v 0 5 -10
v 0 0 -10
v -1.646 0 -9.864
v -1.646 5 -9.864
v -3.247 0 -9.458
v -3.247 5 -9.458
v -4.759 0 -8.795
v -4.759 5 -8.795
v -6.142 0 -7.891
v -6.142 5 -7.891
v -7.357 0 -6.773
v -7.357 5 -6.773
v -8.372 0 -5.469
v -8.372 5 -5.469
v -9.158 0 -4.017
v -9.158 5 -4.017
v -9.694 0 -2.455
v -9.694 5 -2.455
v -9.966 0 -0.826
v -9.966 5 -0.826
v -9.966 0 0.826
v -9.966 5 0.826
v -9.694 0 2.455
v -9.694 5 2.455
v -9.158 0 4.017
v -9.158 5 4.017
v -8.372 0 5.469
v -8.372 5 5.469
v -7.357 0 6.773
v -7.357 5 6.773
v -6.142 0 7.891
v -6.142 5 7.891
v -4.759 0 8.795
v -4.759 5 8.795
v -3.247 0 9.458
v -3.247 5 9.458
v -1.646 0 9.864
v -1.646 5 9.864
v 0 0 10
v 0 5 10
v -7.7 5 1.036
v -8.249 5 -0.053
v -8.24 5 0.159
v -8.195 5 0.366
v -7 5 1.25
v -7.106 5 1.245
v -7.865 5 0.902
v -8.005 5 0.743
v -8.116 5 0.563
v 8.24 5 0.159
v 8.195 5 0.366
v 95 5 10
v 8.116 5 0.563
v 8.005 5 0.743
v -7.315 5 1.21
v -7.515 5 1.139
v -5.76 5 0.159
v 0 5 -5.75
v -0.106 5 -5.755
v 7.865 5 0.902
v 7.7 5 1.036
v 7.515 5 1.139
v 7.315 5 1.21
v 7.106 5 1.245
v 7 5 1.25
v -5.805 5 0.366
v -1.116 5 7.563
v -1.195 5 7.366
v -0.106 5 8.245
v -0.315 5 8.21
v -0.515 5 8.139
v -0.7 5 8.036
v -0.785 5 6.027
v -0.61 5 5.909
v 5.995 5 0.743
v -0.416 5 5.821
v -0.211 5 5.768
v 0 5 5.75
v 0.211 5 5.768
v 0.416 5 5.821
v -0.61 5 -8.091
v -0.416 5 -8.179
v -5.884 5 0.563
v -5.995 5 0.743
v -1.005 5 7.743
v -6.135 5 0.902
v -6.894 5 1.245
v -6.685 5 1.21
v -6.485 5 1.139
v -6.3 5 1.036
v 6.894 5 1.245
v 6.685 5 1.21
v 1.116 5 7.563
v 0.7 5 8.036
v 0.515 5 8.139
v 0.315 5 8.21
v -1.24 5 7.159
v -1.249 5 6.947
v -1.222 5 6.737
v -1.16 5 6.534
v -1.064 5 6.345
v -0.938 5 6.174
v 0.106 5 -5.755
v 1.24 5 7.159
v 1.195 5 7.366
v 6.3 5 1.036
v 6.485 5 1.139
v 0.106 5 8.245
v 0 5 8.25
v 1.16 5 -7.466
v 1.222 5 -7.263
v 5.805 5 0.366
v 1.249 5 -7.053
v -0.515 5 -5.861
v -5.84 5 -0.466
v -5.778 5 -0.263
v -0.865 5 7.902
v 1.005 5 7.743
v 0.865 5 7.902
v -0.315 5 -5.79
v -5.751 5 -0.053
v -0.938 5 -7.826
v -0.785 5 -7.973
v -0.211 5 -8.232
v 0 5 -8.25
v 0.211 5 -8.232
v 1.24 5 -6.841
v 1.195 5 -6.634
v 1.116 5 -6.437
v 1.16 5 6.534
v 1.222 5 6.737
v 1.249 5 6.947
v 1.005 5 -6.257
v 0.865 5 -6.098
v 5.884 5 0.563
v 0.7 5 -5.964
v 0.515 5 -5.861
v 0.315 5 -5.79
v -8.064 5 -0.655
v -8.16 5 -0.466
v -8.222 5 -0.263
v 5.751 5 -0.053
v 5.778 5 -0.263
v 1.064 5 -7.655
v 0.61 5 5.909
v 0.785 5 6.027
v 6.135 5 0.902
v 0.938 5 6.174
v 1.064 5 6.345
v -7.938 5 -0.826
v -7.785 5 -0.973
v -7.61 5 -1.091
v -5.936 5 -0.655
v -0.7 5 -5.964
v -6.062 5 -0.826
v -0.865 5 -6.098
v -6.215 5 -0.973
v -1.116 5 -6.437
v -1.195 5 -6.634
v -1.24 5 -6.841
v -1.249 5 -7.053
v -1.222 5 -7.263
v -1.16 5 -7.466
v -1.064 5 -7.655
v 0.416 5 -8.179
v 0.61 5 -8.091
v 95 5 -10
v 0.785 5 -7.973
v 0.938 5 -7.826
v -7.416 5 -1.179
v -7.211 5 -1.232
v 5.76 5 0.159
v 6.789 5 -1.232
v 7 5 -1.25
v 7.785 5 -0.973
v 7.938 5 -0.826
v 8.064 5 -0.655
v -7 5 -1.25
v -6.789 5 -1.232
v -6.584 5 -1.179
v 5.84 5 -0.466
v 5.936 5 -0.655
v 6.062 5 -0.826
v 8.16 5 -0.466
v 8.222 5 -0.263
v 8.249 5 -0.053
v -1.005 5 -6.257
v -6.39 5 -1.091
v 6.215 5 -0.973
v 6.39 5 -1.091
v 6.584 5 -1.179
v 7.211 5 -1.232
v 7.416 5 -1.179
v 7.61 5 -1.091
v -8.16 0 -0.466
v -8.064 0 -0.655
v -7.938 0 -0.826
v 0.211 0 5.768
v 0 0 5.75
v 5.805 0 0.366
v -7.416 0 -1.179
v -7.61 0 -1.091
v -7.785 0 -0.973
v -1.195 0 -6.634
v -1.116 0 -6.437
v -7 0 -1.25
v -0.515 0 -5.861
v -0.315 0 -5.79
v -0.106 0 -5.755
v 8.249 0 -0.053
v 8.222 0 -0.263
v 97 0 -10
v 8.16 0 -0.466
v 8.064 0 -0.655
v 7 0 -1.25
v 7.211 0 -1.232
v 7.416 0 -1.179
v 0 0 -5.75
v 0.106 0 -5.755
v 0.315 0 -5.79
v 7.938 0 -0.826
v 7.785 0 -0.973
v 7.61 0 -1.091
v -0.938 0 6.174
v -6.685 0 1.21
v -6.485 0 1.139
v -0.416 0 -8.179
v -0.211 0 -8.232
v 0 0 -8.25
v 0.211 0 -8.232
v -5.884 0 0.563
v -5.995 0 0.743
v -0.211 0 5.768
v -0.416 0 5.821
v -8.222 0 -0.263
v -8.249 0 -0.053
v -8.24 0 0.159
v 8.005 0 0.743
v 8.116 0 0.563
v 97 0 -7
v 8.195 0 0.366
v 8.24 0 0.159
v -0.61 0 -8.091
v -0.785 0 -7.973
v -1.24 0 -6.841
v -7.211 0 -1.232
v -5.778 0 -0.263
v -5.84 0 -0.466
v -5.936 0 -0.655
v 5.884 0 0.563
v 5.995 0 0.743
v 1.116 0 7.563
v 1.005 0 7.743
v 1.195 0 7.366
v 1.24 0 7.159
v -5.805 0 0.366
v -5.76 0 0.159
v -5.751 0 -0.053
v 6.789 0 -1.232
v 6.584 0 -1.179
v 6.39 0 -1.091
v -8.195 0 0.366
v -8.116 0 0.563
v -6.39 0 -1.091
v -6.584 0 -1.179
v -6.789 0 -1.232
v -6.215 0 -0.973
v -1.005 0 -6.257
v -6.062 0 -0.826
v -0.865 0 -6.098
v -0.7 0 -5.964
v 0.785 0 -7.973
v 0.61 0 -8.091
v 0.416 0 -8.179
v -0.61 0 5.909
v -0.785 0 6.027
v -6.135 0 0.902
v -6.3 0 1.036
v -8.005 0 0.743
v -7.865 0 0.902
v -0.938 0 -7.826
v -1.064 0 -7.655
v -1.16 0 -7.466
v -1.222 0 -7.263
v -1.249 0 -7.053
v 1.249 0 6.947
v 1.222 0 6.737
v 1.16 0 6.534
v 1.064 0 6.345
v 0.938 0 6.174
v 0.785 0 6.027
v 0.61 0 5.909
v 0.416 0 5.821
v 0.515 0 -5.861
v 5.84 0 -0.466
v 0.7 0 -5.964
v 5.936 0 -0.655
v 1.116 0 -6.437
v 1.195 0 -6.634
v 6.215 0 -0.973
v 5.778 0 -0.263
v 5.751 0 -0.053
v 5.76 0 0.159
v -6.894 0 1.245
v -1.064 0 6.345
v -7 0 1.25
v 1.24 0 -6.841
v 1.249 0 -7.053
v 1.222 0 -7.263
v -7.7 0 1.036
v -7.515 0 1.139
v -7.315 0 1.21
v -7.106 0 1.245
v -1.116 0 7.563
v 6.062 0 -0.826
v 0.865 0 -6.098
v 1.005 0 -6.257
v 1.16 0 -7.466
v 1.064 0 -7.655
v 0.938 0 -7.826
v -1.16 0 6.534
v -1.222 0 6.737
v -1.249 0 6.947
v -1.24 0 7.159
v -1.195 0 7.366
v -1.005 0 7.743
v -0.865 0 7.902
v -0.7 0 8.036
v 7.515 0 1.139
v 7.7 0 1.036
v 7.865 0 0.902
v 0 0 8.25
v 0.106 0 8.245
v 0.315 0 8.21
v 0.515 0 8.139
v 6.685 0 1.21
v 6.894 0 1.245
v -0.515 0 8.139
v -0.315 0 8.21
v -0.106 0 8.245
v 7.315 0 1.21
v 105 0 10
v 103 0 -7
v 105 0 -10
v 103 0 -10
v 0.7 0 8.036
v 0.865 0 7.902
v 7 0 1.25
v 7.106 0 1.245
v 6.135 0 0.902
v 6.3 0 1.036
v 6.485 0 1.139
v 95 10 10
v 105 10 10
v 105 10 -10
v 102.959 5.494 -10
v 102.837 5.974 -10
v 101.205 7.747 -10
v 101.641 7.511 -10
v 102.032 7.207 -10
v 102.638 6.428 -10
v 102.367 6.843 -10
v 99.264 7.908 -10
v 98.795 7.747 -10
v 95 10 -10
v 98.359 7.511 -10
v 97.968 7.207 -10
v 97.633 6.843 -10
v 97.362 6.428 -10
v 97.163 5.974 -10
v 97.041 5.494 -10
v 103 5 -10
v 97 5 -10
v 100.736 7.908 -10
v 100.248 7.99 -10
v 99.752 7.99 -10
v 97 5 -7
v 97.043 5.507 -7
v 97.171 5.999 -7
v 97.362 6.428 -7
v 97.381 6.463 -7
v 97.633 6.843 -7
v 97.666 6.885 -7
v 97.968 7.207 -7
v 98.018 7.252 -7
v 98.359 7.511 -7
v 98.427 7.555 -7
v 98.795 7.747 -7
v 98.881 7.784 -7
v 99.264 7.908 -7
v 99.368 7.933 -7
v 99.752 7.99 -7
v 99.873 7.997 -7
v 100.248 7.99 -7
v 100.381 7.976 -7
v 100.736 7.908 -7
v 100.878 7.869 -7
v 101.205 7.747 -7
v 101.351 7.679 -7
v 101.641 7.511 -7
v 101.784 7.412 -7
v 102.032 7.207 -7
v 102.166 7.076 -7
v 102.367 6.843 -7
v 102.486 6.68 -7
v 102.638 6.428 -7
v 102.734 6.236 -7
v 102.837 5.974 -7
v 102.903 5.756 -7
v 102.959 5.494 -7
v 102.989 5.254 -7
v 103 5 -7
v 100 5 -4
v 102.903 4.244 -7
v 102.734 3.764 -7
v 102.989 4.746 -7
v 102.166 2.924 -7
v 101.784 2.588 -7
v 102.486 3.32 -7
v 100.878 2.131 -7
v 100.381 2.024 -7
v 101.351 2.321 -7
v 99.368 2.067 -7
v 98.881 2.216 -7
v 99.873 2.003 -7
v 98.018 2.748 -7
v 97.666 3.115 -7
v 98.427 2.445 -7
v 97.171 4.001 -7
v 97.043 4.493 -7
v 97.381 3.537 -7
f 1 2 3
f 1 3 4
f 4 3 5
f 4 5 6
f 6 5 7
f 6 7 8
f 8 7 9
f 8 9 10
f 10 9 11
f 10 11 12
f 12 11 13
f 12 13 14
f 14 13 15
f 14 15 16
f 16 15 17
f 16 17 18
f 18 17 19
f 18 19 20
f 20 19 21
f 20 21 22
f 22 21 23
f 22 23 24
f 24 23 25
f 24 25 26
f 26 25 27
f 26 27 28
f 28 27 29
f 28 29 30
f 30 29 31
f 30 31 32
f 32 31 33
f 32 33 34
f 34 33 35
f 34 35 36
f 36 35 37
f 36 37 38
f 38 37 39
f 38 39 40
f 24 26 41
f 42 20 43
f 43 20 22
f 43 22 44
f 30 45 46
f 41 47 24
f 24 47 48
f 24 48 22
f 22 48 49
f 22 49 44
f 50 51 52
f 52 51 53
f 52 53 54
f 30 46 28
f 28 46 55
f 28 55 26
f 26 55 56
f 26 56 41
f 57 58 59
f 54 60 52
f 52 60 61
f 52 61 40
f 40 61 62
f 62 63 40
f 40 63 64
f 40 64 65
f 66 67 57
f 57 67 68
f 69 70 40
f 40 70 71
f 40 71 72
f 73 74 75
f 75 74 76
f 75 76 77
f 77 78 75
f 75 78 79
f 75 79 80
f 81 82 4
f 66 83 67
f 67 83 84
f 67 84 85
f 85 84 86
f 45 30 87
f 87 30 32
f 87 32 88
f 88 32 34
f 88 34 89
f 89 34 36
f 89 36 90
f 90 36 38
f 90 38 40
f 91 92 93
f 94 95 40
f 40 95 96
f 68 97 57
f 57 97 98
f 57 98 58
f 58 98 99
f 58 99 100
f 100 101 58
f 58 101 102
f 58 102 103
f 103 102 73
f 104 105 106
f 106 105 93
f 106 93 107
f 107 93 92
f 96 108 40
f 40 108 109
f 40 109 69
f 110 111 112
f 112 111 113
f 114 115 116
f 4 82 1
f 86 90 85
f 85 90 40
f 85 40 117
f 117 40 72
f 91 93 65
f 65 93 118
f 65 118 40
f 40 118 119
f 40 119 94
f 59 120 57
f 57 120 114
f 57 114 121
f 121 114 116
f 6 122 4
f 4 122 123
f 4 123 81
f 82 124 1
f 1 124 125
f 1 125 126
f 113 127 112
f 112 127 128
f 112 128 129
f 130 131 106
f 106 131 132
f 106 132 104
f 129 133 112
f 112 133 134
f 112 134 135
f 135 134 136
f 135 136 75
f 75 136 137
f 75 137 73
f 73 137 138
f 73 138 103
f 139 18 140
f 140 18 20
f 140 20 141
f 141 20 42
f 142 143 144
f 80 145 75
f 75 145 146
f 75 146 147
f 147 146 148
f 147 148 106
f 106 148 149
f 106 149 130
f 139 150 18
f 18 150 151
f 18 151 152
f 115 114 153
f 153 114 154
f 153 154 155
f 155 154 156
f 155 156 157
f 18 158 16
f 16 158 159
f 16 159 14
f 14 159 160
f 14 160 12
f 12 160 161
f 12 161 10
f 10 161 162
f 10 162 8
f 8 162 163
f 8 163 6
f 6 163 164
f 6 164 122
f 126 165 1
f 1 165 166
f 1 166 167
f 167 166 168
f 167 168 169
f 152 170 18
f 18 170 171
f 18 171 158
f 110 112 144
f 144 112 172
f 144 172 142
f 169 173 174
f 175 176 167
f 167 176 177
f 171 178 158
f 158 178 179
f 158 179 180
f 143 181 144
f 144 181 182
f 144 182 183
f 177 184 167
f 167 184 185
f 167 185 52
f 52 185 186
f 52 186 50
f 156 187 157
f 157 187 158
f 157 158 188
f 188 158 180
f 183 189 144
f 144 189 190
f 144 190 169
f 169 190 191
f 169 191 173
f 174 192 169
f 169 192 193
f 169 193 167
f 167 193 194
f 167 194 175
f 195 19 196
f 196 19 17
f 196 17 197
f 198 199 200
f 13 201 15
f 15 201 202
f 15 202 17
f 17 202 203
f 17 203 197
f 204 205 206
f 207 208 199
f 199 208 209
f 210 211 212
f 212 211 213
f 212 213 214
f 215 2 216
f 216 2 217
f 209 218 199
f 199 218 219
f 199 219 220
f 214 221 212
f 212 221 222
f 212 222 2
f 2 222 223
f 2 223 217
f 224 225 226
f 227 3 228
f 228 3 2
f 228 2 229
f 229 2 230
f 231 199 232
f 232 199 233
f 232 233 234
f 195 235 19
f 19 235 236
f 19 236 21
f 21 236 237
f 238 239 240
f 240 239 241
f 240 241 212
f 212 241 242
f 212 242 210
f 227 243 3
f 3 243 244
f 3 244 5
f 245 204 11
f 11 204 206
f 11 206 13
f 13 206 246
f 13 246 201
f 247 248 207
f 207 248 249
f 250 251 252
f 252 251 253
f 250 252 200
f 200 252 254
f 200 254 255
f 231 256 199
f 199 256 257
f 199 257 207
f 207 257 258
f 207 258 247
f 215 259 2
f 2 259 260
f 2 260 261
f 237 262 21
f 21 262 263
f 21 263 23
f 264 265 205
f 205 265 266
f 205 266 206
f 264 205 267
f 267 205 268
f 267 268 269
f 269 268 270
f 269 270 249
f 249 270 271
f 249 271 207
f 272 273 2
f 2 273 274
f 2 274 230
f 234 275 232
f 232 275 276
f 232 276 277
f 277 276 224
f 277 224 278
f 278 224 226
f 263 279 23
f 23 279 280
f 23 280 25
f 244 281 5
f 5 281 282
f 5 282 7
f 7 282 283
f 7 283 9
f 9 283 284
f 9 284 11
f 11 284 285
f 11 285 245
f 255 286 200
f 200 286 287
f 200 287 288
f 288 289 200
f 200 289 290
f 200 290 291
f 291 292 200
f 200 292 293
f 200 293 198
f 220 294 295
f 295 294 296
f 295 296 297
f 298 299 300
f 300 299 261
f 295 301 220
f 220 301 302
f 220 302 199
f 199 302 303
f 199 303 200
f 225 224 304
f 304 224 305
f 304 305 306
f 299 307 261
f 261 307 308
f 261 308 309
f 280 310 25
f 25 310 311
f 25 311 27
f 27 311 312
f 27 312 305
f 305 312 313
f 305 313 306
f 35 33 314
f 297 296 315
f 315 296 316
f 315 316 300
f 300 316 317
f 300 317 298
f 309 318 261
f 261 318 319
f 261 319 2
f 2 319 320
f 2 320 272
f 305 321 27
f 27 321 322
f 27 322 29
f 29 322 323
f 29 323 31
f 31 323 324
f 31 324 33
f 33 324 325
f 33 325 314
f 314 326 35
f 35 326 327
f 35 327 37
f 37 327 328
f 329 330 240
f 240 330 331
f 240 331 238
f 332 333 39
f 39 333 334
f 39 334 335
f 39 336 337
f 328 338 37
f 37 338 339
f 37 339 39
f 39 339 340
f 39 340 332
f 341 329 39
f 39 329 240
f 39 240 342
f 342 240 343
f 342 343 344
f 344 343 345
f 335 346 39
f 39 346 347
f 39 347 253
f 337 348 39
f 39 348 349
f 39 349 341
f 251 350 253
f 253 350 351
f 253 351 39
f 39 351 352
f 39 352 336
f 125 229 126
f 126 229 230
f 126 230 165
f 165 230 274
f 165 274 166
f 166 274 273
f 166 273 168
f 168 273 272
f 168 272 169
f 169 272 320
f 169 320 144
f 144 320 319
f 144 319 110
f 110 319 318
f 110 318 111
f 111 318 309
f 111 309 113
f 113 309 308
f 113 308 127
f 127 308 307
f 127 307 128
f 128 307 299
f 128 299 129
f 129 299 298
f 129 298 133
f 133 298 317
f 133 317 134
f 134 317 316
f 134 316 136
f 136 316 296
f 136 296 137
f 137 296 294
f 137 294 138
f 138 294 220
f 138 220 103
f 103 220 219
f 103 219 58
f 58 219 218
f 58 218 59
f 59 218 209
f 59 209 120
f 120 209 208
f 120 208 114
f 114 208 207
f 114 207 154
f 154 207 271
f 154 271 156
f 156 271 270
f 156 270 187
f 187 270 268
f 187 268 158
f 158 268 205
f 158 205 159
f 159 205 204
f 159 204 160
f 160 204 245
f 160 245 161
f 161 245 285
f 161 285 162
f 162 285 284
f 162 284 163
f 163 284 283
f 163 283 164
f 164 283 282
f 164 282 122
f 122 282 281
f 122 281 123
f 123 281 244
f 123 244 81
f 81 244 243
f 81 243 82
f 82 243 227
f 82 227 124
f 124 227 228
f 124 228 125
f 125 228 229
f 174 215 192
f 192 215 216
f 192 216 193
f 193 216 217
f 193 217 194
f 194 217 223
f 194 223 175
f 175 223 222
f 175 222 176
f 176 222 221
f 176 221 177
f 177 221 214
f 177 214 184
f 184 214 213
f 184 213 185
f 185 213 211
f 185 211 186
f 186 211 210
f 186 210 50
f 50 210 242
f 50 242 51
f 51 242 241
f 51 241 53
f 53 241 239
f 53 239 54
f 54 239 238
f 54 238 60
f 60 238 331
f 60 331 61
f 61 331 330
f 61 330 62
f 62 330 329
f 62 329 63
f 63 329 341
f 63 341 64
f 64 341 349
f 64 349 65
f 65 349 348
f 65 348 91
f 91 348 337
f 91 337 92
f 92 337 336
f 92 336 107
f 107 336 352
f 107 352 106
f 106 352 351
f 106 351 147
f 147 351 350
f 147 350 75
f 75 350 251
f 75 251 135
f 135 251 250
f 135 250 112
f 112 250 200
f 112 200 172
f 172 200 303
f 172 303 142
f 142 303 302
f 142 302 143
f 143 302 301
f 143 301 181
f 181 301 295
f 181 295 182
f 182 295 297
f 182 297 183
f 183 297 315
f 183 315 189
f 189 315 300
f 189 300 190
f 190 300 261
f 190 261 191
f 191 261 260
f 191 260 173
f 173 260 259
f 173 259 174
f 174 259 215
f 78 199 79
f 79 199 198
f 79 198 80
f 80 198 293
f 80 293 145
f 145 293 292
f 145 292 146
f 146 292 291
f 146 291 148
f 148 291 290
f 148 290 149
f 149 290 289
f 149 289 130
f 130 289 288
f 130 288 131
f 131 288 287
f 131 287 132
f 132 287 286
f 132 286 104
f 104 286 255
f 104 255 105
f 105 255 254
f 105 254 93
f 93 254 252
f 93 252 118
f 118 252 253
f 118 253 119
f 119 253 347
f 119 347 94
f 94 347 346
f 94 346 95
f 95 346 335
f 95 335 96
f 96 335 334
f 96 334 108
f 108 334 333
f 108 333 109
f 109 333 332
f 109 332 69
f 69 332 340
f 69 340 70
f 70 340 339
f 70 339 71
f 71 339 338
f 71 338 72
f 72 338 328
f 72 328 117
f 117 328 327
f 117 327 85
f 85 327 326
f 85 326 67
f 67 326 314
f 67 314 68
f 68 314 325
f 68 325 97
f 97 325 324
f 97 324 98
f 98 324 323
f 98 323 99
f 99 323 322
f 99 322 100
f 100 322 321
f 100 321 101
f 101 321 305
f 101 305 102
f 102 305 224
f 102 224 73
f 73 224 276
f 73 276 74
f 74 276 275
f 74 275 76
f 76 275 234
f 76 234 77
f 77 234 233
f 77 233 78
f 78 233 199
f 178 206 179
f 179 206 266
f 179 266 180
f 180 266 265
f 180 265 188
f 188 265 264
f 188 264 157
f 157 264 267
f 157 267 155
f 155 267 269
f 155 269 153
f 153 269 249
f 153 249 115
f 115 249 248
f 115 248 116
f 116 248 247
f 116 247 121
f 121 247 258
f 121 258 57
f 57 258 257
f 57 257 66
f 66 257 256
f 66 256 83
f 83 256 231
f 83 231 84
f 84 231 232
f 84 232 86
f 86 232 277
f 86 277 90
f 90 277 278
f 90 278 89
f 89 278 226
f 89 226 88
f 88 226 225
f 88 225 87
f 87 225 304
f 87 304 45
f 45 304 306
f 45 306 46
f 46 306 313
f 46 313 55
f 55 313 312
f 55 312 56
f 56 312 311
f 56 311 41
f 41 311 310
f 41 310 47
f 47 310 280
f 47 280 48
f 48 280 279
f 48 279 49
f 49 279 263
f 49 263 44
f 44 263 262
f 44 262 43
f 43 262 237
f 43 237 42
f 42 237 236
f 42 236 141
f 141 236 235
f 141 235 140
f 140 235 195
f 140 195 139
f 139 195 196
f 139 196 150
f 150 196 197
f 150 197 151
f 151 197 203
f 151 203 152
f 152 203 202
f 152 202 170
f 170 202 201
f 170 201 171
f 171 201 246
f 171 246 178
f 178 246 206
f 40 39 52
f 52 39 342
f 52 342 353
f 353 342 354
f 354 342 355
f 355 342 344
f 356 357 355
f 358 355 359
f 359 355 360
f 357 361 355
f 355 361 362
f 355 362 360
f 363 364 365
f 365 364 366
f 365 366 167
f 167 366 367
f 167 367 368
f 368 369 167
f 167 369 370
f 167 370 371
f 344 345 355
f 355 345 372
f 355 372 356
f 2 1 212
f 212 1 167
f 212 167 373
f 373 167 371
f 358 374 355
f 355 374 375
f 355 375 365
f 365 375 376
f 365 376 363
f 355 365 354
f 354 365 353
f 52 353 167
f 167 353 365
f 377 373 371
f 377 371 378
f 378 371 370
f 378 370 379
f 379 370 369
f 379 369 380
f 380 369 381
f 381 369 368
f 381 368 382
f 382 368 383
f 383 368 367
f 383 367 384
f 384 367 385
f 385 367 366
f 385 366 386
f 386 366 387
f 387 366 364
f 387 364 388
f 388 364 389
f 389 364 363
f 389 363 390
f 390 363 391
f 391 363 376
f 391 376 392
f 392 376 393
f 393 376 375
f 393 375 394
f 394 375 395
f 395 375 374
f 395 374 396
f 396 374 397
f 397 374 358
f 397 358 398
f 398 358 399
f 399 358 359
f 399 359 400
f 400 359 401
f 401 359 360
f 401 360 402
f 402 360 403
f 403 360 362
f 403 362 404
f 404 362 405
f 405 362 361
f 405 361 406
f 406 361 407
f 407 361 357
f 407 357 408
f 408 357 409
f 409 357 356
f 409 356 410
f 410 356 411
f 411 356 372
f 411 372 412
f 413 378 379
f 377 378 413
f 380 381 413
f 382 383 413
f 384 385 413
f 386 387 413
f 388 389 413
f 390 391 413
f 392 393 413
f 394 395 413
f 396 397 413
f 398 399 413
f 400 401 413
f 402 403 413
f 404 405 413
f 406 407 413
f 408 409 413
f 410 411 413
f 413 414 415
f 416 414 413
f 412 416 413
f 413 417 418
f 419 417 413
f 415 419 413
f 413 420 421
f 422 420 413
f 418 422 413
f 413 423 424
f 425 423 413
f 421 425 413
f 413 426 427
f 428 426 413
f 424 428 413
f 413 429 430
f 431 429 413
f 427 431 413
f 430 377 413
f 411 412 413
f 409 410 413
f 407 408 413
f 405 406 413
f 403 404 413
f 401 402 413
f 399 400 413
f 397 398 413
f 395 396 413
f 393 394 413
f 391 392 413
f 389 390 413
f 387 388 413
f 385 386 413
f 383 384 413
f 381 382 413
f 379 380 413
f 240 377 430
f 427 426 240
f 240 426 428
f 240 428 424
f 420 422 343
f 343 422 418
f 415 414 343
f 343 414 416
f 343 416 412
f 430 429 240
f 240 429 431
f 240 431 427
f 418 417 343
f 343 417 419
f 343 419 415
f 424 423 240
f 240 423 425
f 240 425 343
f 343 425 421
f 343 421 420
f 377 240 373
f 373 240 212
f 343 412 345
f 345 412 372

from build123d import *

# Parameters (mm, degrees)
SKETCH1_R           = 10
SKETCH1_R_2         = 1.25
BOSS_EXTRUDE1_DEPTH = 5
BOSS_EXTRUDE2_DEPTH = 5
SKETCH3_W           = 10
SKETCH3_H           = 10
BOSS_EXTRUDE3_DEPTH = 20
SKETCH4_R           = 3
CUT_EXTRUDE1_DEPTH  = 6
CHAMFER1_SIZE       = 3
SKETCH5_W           = 6
SKETCH5_H           = 5
CUT_EXTRUDE2_DEPTH  = 3


with BuildPart() as part:
    # Sketch1 → Boss-Extrude1 (new body)
    with BuildSketch(Plane(origin=(0, 0, 0), x_dir=(1, 0, 0), z_dir=(0, 1, 0))):
        with Locations(Location((0, 0, 0), (0, 0, 270))):
            Circle(SKETCH1_R)
        with Locations(Location((0, 7, 0), (0, 0, 270))):
            Circle(SKETCH1_R_2, mode=Mode.SUBTRACT)
        with Locations(Location((7, 0, 0), (0, 0, 270))):
            Circle(SKETCH1_R_2, mode=Mode.SUBTRACT)
        with Locations(Location((0, -7, 0), (0, 0, 270))):
            Circle(SKETCH1_R_2, mode=Mode.SUBTRACT)
        with Locations(Location((-7, 0, 0), (0, 0, 270))):
            Circle(SKETCH1_R_2, mode=Mode.SUBTRACT)
    extrude(amount=BOSS_EXTRUDE1_DEPTH)

    # Sketch2 → Boss-Extrude2 (add)
    with BuildSketch(Plane(origin=(0, 0, 0), x_dir=(1, 0, 0), z_dir=(0, 1, 0))):
        with BuildLine():
            Line((0, 10), (105, 10))
            Line((105, 10), (105, -10))
            Line((105, -10), (0, -10))
            ThreePointArc((0, -10), (10, 0), (0, 10))
        make_face()
    extrude(amount=BOSS_EXTRUDE2_DEPTH)

    # Sketch3 → Boss-Extrude3 (add)
    with BuildSketch(Plane(origin=(0, 0, -10), x_dir=(-1, 0, 0), z_dir=(0, 0, -1))):
        with Locations((-100, 5)):
            Rectangle(SKETCH3_W, SKETCH3_H)
    extrude(amount=-BOSS_EXTRUDE3_DEPTH)

    # Sketch4 → Cut-Extrude1 (cut)
    with BuildSketch(Plane(origin=(0, 0, -10), x_dir=(-1, 0, 0), z_dir=(0, 0, -1))):
        with Locations((-100, 5)):
            Circle(SKETCH4_R)
    extrude(amount=-CUT_EXTRUDE1_DEPTH, mode=Mode.SUBTRACT)

    # Chamfer1
    chamfer1_edges = [part.edges().sort_by_distance(p)[0] for p in [
        (103, 5, -4),
    ]]
    chamfer(chamfer1_edges, length=CHAMFER1_SIZE)

    # Sketch5 → Cut-Extrude2 (cut)
    with BuildSketch(Plane(origin=(0, 0, -10), x_dir=(-1, 0, 0), z_dir=(0, 0, -1))):
        with Locations((-100, 2.5)):
            Rectangle(SKETCH5_W, SKETCH5_H)
    extrude(amount=-CUT_EXTRUDE2_DEPTH, mode=Mode.SUBTRACT)


solid = part.part
